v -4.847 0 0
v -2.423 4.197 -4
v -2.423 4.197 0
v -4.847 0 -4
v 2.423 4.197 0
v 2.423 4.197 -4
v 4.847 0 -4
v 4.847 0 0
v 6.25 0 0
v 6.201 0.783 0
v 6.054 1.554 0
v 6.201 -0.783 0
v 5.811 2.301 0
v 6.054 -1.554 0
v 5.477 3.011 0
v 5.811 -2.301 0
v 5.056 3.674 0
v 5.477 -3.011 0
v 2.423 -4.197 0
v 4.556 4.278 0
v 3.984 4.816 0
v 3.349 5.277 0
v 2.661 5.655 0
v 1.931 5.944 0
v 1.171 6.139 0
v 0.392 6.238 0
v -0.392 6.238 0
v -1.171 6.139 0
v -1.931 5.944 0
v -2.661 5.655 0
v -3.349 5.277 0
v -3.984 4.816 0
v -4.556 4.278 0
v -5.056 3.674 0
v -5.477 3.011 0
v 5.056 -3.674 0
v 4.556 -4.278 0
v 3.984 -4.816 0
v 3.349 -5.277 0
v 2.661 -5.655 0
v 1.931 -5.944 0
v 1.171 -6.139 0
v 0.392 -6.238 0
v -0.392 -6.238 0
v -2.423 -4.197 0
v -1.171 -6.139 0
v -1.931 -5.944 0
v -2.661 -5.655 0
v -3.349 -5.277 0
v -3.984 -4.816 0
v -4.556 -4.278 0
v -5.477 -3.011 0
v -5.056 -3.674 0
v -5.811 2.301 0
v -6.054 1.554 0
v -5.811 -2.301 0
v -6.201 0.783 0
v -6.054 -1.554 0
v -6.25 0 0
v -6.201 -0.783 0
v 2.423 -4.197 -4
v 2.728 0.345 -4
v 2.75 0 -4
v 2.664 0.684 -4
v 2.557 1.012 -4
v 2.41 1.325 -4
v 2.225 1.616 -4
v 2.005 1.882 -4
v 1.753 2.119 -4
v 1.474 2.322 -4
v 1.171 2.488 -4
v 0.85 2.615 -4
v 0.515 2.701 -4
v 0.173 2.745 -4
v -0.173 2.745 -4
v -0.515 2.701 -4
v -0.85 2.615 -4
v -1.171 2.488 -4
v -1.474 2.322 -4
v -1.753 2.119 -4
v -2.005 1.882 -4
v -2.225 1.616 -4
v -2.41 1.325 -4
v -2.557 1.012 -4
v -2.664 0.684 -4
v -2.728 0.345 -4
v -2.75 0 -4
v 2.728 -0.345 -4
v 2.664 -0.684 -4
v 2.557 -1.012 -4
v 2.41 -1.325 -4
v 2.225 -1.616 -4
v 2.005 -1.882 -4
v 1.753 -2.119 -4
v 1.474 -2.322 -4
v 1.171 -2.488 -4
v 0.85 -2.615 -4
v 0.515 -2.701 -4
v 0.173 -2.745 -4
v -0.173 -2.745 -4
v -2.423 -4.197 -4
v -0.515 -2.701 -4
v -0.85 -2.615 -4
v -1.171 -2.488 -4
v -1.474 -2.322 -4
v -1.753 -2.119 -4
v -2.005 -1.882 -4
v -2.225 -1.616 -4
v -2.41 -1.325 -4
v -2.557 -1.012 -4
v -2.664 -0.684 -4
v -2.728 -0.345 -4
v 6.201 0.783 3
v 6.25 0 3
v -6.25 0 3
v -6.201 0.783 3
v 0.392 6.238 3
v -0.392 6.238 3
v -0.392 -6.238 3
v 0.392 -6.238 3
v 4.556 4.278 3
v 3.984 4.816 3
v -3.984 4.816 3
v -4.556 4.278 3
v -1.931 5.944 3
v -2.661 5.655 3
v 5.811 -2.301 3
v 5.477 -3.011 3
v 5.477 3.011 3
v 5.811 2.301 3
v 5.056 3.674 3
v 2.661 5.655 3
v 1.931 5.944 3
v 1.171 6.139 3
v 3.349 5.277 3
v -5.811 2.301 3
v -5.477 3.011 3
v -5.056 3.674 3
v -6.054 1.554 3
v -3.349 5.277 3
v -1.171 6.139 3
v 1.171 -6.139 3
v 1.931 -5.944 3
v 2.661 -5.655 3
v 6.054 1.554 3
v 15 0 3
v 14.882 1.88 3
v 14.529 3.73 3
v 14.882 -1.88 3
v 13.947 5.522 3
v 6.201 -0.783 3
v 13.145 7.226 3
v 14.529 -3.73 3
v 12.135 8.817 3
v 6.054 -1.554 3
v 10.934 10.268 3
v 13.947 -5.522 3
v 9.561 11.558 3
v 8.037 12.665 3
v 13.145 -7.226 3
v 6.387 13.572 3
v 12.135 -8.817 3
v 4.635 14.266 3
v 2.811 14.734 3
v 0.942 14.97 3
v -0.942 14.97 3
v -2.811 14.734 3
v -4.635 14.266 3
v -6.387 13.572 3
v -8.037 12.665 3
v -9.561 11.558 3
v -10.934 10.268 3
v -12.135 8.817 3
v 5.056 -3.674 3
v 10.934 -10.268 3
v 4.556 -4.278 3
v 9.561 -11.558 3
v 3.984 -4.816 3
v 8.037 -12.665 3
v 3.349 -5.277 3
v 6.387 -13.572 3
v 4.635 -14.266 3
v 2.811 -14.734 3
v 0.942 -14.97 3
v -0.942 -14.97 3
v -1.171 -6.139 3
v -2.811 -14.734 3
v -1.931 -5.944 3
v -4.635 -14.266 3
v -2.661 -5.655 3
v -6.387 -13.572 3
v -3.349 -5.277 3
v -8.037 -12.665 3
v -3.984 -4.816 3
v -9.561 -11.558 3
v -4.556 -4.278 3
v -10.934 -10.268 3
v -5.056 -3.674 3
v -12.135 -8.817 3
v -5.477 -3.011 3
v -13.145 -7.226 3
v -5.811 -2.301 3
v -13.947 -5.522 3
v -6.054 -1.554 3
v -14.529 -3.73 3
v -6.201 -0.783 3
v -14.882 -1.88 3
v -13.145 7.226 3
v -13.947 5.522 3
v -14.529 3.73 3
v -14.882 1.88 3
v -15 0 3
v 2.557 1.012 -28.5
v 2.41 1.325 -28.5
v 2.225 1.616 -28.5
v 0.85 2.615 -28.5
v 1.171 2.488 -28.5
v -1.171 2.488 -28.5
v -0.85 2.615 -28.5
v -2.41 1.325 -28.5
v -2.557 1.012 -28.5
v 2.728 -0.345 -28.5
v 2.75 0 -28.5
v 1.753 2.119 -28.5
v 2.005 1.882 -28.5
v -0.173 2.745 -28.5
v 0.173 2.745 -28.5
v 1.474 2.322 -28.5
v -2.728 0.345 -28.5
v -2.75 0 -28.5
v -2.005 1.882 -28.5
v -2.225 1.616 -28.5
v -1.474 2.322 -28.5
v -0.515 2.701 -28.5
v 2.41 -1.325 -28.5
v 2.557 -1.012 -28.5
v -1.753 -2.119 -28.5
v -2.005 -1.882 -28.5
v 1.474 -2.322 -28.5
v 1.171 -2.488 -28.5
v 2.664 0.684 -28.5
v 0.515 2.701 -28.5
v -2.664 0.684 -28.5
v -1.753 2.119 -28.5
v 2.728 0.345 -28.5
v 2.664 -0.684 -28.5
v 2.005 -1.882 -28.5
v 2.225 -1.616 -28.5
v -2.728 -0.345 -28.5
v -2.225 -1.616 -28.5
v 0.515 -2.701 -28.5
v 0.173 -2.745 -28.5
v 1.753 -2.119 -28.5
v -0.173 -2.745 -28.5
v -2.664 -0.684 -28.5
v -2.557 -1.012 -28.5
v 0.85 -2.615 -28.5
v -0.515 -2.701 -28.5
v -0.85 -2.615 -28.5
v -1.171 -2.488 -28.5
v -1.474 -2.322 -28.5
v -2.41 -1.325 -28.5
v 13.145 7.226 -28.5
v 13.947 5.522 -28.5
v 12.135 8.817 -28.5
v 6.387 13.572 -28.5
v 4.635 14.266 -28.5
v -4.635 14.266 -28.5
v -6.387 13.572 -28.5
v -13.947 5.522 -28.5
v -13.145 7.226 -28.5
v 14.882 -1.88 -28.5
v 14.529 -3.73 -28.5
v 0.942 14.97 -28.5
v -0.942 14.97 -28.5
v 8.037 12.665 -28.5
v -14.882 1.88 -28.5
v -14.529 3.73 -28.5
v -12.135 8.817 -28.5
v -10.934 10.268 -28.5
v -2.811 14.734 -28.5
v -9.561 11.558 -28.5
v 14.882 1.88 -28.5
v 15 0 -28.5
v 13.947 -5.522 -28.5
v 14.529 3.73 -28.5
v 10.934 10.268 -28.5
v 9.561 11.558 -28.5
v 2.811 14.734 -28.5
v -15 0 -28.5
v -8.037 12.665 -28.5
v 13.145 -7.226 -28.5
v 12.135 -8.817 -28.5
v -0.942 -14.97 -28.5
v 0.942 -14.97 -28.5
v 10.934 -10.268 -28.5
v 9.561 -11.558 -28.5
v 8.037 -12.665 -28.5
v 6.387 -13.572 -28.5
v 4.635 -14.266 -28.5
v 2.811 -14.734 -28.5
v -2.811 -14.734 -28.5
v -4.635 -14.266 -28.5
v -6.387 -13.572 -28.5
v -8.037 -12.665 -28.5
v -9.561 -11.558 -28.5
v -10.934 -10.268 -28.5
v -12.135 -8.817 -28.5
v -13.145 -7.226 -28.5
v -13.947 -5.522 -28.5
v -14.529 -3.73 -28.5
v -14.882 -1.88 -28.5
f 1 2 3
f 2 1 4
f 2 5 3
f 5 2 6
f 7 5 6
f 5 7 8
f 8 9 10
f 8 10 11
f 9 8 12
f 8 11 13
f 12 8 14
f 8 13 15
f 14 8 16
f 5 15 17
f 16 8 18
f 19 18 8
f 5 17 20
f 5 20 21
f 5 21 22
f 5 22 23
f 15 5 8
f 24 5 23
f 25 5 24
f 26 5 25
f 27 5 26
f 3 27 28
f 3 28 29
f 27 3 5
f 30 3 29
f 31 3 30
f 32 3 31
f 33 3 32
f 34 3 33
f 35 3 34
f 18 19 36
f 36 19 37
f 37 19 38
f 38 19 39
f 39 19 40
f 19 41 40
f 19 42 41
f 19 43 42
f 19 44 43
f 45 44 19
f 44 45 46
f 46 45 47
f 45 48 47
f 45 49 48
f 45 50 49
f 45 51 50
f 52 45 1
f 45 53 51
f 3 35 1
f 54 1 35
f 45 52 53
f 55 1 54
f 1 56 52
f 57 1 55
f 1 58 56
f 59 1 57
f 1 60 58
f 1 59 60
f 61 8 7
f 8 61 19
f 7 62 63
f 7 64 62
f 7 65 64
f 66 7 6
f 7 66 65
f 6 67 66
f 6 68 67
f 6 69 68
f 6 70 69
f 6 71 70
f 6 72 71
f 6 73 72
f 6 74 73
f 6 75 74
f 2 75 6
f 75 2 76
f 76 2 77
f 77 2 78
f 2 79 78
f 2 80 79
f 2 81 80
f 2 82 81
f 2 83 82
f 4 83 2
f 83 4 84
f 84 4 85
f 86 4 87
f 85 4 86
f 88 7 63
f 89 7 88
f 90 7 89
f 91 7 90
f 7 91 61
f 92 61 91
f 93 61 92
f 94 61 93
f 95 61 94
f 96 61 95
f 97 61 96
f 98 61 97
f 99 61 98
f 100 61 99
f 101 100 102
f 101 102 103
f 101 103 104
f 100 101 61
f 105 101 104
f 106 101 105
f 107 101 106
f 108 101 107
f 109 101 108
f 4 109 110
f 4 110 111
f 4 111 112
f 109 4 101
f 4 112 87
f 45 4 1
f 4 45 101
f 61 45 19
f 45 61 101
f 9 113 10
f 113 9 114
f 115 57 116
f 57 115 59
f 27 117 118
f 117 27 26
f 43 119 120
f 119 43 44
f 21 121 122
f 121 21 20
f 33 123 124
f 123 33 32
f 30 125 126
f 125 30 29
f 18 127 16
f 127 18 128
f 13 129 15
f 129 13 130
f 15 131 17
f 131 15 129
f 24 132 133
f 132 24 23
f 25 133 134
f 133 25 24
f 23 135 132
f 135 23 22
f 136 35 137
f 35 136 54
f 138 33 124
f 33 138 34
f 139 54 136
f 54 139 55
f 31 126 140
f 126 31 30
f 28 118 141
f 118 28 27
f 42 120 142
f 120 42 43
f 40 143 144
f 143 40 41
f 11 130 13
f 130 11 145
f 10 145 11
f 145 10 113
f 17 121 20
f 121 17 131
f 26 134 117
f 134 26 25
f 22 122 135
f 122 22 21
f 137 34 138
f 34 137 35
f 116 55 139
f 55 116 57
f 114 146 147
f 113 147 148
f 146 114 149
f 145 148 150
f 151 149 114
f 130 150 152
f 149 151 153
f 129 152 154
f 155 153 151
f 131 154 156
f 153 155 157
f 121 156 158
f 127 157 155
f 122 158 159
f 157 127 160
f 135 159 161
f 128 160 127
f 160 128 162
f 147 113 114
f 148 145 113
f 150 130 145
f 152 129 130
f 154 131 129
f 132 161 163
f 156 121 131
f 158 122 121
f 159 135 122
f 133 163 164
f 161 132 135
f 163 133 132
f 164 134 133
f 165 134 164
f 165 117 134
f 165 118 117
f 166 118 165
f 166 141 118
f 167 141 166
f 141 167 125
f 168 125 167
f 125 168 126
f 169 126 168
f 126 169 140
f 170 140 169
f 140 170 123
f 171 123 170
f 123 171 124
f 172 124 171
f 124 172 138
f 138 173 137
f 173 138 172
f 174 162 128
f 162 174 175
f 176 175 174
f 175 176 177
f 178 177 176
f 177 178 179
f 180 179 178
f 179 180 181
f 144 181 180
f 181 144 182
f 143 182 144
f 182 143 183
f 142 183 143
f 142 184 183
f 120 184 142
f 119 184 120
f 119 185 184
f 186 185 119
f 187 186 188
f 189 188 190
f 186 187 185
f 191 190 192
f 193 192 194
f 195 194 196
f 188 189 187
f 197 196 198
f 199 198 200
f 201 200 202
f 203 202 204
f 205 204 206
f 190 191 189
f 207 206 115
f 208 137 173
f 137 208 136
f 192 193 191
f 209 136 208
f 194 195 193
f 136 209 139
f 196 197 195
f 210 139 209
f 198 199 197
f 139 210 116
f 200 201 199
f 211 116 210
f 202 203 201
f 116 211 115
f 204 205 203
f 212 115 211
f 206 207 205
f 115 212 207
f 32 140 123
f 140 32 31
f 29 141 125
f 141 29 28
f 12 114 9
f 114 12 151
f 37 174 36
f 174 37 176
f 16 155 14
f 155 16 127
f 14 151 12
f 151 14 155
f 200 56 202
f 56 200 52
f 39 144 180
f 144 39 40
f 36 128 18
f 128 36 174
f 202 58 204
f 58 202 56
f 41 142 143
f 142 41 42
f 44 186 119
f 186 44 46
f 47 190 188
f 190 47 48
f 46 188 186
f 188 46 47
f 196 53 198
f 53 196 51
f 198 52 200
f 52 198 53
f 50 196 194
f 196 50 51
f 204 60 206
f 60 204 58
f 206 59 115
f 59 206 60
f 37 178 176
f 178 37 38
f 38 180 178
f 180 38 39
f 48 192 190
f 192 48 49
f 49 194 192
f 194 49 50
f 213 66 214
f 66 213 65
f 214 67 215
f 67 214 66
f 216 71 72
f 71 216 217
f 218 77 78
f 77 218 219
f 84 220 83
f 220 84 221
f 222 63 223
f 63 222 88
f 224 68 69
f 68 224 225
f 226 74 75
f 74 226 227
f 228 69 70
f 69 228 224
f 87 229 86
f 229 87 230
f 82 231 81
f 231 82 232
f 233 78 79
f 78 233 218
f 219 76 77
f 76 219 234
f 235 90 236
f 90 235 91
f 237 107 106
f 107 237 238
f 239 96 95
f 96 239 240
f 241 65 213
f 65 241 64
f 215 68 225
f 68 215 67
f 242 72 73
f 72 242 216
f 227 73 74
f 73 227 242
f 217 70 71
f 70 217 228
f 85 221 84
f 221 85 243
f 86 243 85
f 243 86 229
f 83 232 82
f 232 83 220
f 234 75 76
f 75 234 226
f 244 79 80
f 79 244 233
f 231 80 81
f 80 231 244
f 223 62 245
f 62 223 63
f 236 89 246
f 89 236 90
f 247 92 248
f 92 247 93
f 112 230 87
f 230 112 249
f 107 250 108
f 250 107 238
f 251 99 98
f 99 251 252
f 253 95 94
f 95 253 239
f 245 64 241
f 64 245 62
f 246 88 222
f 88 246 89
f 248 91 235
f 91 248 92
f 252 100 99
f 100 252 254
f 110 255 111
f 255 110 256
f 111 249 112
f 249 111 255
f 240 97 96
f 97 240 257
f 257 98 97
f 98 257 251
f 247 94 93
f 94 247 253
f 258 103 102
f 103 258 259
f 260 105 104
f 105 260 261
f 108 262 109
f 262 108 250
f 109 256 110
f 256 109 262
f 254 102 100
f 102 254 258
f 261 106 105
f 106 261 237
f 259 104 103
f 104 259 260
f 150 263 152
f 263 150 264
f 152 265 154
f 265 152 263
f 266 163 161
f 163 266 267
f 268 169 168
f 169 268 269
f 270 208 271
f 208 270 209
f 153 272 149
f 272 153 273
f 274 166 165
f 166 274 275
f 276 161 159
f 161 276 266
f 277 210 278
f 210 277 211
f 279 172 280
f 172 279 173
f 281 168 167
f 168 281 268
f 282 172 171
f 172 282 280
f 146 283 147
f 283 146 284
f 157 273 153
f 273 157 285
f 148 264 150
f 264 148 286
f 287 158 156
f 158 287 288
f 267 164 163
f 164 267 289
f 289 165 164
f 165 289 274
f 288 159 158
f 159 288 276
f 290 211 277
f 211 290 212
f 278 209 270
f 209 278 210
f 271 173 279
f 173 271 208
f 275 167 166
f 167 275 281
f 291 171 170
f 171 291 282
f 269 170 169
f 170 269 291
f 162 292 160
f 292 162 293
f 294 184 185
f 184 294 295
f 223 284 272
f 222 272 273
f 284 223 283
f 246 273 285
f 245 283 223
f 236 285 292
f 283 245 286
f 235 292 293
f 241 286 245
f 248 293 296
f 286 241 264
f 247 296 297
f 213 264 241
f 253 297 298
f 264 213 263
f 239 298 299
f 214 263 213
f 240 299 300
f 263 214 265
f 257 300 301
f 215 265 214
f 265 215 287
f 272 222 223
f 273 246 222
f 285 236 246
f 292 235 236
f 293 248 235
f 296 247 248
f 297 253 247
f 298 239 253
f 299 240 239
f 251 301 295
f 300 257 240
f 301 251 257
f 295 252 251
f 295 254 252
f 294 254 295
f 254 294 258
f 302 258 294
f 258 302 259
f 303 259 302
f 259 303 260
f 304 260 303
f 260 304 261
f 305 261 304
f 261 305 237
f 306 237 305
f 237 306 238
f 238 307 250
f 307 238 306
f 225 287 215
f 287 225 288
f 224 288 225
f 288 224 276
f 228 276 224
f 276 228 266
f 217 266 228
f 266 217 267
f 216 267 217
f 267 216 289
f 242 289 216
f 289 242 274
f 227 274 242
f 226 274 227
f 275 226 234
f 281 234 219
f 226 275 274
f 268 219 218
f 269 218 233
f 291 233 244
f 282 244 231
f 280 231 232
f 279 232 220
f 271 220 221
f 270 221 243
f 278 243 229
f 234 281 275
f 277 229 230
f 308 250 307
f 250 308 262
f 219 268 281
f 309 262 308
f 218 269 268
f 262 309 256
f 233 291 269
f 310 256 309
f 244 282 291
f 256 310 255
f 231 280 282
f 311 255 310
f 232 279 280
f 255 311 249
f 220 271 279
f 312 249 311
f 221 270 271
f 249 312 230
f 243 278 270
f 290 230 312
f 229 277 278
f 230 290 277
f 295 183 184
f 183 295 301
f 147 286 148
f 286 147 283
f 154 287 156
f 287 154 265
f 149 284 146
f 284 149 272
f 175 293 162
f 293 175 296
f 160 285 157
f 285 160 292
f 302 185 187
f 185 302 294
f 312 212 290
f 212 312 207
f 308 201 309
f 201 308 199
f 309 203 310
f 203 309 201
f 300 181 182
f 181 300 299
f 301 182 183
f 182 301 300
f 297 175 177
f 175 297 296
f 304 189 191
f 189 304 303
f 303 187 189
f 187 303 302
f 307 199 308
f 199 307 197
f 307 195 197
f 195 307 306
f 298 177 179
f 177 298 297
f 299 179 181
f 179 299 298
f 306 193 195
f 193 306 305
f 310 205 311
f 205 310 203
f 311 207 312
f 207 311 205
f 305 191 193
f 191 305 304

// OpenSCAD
$fn = 50;

difference() {
	union() {
		translate(v = [0, 0, -28.5]) {
			cylinder(h = 31.5, r = 15.0);
		}
	}
	union() {
		translate(v = [0, 0, 0]) {
			rotate(a = [0, 0, 0]) {
				difference() {
					union() {
						translate(v = [0, 0, -4]) {
							linear_extrude(height = 4) {
								polygon(points = [[4.8468, 0.0], [2.4234000000000004, 4.197451927062417], [-2.423399999999999, 4.197451927062417], [-4.8468, 5.935618106107392e-16], [-2.423400000000002, -4.197451927062416], [2.423399999999997, -4.197451927062419]]);
							}
						}
					}
					union();
				}
			}
		}
		#cylinder(h = 3, r = 6.25);
		#translate(v = [0, 0, -100.0]) {
			cylinder(h = 200, r = 2.75);
		}
	}
}
